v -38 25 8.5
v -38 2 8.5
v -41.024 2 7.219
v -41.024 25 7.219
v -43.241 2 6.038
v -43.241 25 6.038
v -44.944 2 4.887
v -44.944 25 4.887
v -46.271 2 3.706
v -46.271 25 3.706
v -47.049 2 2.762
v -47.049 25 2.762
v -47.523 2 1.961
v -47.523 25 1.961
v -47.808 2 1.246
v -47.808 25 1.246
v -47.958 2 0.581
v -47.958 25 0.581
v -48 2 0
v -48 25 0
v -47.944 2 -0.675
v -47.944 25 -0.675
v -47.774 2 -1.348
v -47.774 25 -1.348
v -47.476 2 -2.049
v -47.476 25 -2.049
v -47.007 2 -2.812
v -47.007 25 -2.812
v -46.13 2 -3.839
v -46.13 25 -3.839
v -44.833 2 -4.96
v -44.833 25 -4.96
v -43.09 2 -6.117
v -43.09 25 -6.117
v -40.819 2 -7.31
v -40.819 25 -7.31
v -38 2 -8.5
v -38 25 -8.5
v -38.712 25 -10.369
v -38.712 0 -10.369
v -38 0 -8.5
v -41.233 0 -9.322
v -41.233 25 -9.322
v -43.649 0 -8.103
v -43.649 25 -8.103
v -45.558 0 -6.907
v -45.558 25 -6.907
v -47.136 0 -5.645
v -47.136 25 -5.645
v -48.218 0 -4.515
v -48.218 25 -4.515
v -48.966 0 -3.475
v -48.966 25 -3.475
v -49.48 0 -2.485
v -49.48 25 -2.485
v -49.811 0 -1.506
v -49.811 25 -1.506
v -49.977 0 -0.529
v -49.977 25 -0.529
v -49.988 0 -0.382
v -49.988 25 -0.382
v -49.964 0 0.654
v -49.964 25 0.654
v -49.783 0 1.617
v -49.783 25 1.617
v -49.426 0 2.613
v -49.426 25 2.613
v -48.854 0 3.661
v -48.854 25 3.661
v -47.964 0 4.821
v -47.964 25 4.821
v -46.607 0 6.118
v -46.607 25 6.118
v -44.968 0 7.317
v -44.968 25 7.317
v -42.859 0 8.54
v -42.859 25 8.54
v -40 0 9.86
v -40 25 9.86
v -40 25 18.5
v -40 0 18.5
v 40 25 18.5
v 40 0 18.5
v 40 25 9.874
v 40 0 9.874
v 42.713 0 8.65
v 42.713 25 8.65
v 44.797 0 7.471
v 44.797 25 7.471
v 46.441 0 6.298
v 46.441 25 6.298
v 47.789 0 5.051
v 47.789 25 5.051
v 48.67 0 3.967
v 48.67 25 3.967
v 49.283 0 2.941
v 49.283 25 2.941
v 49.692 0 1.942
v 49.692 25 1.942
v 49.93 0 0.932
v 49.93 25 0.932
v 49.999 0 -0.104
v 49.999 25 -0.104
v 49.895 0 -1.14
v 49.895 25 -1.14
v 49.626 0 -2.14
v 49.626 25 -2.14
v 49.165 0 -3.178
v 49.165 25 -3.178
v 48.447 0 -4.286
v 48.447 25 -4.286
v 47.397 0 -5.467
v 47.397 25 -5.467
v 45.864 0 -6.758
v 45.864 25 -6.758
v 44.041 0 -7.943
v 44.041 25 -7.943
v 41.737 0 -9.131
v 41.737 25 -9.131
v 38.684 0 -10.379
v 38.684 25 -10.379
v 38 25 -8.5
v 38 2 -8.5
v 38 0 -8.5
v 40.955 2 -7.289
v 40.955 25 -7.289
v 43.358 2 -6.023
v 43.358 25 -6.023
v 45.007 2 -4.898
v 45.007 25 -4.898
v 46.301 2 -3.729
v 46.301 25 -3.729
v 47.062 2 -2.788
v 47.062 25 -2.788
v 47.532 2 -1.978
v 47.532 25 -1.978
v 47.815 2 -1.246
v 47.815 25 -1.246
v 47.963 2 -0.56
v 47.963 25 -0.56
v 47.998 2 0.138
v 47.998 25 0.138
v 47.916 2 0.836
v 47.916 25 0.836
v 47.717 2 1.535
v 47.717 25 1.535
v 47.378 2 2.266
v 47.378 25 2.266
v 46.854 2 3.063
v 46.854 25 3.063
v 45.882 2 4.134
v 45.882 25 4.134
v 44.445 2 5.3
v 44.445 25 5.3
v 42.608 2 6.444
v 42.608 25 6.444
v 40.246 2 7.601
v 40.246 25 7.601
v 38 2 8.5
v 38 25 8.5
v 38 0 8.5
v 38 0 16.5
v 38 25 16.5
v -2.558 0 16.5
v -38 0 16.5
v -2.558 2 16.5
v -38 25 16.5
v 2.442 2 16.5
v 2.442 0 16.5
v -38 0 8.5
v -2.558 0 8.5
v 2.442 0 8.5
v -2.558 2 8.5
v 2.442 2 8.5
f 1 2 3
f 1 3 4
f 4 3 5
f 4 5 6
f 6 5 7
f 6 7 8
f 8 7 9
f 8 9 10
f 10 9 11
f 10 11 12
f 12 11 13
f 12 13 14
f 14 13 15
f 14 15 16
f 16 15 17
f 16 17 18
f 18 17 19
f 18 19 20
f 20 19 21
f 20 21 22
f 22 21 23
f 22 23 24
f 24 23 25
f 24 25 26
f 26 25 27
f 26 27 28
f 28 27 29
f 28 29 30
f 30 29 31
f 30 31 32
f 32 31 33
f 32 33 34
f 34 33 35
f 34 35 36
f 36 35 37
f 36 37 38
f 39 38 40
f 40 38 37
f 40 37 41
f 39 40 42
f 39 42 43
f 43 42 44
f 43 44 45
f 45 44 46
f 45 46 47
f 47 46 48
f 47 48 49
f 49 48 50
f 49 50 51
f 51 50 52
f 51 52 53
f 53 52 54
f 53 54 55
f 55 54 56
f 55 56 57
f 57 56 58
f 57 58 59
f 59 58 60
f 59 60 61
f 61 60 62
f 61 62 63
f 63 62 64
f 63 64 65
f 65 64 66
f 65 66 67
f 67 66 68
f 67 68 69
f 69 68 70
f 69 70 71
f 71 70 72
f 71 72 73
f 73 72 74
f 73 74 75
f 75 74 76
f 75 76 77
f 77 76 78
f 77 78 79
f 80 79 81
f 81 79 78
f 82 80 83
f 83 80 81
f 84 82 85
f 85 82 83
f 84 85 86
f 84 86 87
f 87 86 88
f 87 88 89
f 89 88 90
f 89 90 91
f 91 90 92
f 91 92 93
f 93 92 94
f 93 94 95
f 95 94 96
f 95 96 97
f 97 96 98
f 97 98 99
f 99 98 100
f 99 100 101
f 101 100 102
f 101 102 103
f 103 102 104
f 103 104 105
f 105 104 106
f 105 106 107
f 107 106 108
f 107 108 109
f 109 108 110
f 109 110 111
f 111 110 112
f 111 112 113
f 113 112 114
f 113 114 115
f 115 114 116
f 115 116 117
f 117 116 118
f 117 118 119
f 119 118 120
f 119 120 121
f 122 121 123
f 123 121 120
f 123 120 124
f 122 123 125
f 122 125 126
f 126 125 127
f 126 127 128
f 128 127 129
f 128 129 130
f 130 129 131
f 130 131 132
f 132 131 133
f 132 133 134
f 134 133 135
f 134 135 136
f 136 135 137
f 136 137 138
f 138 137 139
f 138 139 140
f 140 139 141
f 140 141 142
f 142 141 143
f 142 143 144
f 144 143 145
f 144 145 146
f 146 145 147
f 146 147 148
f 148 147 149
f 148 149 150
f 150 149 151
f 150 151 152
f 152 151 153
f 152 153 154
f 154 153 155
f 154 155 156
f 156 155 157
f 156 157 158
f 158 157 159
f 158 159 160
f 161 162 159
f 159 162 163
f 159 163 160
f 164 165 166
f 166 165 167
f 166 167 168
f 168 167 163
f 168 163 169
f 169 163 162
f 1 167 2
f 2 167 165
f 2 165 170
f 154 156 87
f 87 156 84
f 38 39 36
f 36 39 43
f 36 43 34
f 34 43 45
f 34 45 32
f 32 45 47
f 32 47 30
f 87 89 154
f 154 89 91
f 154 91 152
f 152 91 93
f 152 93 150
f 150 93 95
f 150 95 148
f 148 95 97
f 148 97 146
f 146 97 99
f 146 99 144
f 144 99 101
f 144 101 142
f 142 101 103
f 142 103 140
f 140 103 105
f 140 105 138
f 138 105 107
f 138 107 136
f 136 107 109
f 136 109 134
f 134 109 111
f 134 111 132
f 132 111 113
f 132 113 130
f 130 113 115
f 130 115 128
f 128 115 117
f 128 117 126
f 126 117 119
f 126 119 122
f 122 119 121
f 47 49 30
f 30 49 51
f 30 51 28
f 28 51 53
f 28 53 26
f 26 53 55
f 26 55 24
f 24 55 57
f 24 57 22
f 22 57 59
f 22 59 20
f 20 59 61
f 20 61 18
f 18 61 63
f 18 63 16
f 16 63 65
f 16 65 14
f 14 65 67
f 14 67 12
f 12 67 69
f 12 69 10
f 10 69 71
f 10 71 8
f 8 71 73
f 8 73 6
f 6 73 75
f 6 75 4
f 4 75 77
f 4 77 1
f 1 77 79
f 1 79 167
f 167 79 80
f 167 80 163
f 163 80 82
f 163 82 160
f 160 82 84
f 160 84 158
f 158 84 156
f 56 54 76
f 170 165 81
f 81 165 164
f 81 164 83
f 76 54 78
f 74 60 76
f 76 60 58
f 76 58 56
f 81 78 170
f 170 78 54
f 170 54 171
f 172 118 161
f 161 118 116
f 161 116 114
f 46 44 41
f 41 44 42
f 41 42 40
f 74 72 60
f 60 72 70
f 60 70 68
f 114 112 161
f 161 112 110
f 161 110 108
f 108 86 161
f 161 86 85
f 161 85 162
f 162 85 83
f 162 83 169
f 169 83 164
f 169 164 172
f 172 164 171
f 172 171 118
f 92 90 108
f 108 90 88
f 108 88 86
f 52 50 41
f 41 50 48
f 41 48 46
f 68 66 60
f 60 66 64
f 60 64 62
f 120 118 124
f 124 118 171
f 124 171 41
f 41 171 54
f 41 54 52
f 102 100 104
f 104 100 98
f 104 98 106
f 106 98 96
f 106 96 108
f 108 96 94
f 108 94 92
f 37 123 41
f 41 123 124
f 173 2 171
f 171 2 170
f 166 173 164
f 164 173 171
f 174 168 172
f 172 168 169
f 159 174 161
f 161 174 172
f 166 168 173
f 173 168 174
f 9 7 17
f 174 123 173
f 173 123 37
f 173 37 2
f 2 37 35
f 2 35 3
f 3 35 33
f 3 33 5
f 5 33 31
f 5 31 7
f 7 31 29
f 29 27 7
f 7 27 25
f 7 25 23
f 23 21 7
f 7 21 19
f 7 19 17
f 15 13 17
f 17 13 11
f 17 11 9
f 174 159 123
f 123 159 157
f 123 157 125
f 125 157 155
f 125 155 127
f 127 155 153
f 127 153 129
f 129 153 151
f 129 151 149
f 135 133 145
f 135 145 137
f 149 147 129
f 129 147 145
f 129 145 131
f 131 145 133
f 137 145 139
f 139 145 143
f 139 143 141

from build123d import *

# Parameters (mm, degrees)
EXTRUDE_THIN1_DEPTH = 25
SKETCH1_4_W         = 5
SKETCH1_4_H         = 8
BOSS_EXTRUDE1_DEPTH = 2


# Read off the part's stored shape, not the designer's step: Extrude-Thin1
with BuildPart() as part:
    # Extrude-Thin1 outline → Extrude-Thin1 (new body)
    with BuildSketch(Plane(origin=(0, 0, 0), x_dir=(1, 0, 0), z_dir=(0, 1, 0))):
        with BuildLine():
            Line((-38, -16.5), (-38, -8.5))
            add(Edge.make_bspline(
                [(-38, -8.5), (-44.097173442, -6.191975733), (-51.24911635, -0.338068019), (-45.404593858, 5.680809666), (-38, 8.5)],
                knots=[0, 0, 0, 0, 0.45, 1, 1, 1, 1], degree=3))
            Line((-38, 8.5), (-38.711636331, 10.369110412))
            add(Edge.make_bspline(
                [(-40, -9.859841794), (-41.606386453, -9.196458265), (-43.017472016, -8.501725084), (-45.469707437, -7.035602306), (-46.512220325, -6.264852114), (-47.804314217, -5.016726081), (-48.189528627, -4.584904063), (-48.861828962, -3.681646539), (-49.148945908, -3.209825558), (-49.608266758, -2.224452325), (-49.779923805, -1.710805438), (-49.987416601, -0.657795935), (-50.022684998, -0.117692843), (-49.948308777, 0.954692848), (-49.838948343, 1.485949966), (-49.492254198, 2.510170013), (-49.255698689, 3.003157429), (-48.677599503, 3.945189967), (-48.336215051, 4.394726597), (-47.560818188, 5.257811894), (-47.12665517, 5.671599025), (-45.690080991, 6.872176624), (-44.553820309, 7.619607901), (-41.913701573, 9.045316851), (-40.409063551, 9.722839934), (-38.711636331, 10.369110412)],
                knots=[0, 0, 0, 0, 0.125, 0.125, 0.25, 0.25, 0.3125, 0.3125, 0.375, 0.375, 0.4375, 0.4375, 0.5, 0.5, 0.5625, 0.5625, 0.625, 0.625, 0.6875, 0.6875, 0.75, 0.75, 0.875, 0.875, 1, 1, 1, 1], degree=3))
            Line((-40, -9.859841794), (-40, -18.5))
            Line((-40, -18.5), (40, -18.5))
            Line((40, -18.5), (40, -9.873686568))
            add(Edge.make_bspline(
                [(38.684040287, 10.379385242), (40.404146523, 9.753317772), (41.922997097, 9.088004701), (44.580778609, 7.67329588), (45.720598061, 6.924508695), (47.156908421, 5.714585478), (47.590001398, 5.296481601), (48.361311267, 4.423750332), (48.699629675, 3.968883794), (49.270210276, 3.017732284), (49.502265384, 2.521057808), (49.841478111, 1.493563088), (49.948317052, 0.963257165), (50.022307254, -0.110491836), (49.98871569, -0.652606556), (49.783918004, -1.713702721), (49.613332553, -2.232123006), (49.155378033, -3.226795657), (48.868494073, -3.703362334), (48.19572387, -4.615356392), (47.809819507, -5.05115076), (46.514967687, -6.308605239), (45.469763356, -7.082043918), (43.014746143, -8.541621876), (41.603565288, -9.227195017), (40, -9.873686568)],
                knots=[0, 0, 0, 0, 0.125, 0.125, 0.25, 0.25, 0.3125, 0.3125, 0.375, 0.375, 0.4375, 0.4375, 0.5, 0.5, 0.5625, 0.5625, 0.625, 0.625, 0.6875, 0.6875, 0.75, 0.75, 0.875, 0.875, 1, 1, 1, 1], degree=3))
            Line((38.684040287, 10.379385242), (38, 8.5))
            add(Edge.make_bspline(
                [(38, 8.5), (44.126226569, 6.270235881), (51.223936974, 0.356097076), (45.425899484, -5.777606597), (38, -8.5)],
                knots=[0, 0, 0, 0, 0.45, 1, 1, 1, 1], degree=3))
            Line((38, -8.5), (38, -16.5))
            Line((38, -16.5), (-38, -16.5))
        make_face()
    extrude(amount=EXTRUDE_THIN1_DEPTH)

    # Sketch1<4> → Boss-Extrude1 (add)
    with BuildSketch(Plane(origin=(0, 0, 0), x_dir=(1, 0, 0), z_dir=(0, 1, 0))):
        with BuildLine():
            add(Edge.make_bspline(
                [(38, 8.5), (44.126226569, 6.270235881), (51.223936974, 0.356097076), (45.425899484, -5.777606597), (38, -8.5)],
                knots=[0, 0, 0, 0, 0.45, 1, 1, 1, 1], degree=3))
            Line((38, -8.5), (-38, -8.5))
            add(Edge.make_bspline(
                [(-38, 8.5), (-45.404593858, 5.680809666), (-51.24911635, -0.338068019), (-44.097173442, -6.191975733), (-38, -8.5)],
                knots=[0, 0, 0, 0, 0.55, 1, 1, 1, 1], degree=3))
            Line((-38, 8.5), (38, 8.5))
        make_face()
        with Locations((-0.057660248, -12.5)):
            Rectangle(SKETCH1_4_W, SKETCH1_4_H)
    extrude(amount=BOSS_EXTRUDE1_DEPTH)


solid = part.part
